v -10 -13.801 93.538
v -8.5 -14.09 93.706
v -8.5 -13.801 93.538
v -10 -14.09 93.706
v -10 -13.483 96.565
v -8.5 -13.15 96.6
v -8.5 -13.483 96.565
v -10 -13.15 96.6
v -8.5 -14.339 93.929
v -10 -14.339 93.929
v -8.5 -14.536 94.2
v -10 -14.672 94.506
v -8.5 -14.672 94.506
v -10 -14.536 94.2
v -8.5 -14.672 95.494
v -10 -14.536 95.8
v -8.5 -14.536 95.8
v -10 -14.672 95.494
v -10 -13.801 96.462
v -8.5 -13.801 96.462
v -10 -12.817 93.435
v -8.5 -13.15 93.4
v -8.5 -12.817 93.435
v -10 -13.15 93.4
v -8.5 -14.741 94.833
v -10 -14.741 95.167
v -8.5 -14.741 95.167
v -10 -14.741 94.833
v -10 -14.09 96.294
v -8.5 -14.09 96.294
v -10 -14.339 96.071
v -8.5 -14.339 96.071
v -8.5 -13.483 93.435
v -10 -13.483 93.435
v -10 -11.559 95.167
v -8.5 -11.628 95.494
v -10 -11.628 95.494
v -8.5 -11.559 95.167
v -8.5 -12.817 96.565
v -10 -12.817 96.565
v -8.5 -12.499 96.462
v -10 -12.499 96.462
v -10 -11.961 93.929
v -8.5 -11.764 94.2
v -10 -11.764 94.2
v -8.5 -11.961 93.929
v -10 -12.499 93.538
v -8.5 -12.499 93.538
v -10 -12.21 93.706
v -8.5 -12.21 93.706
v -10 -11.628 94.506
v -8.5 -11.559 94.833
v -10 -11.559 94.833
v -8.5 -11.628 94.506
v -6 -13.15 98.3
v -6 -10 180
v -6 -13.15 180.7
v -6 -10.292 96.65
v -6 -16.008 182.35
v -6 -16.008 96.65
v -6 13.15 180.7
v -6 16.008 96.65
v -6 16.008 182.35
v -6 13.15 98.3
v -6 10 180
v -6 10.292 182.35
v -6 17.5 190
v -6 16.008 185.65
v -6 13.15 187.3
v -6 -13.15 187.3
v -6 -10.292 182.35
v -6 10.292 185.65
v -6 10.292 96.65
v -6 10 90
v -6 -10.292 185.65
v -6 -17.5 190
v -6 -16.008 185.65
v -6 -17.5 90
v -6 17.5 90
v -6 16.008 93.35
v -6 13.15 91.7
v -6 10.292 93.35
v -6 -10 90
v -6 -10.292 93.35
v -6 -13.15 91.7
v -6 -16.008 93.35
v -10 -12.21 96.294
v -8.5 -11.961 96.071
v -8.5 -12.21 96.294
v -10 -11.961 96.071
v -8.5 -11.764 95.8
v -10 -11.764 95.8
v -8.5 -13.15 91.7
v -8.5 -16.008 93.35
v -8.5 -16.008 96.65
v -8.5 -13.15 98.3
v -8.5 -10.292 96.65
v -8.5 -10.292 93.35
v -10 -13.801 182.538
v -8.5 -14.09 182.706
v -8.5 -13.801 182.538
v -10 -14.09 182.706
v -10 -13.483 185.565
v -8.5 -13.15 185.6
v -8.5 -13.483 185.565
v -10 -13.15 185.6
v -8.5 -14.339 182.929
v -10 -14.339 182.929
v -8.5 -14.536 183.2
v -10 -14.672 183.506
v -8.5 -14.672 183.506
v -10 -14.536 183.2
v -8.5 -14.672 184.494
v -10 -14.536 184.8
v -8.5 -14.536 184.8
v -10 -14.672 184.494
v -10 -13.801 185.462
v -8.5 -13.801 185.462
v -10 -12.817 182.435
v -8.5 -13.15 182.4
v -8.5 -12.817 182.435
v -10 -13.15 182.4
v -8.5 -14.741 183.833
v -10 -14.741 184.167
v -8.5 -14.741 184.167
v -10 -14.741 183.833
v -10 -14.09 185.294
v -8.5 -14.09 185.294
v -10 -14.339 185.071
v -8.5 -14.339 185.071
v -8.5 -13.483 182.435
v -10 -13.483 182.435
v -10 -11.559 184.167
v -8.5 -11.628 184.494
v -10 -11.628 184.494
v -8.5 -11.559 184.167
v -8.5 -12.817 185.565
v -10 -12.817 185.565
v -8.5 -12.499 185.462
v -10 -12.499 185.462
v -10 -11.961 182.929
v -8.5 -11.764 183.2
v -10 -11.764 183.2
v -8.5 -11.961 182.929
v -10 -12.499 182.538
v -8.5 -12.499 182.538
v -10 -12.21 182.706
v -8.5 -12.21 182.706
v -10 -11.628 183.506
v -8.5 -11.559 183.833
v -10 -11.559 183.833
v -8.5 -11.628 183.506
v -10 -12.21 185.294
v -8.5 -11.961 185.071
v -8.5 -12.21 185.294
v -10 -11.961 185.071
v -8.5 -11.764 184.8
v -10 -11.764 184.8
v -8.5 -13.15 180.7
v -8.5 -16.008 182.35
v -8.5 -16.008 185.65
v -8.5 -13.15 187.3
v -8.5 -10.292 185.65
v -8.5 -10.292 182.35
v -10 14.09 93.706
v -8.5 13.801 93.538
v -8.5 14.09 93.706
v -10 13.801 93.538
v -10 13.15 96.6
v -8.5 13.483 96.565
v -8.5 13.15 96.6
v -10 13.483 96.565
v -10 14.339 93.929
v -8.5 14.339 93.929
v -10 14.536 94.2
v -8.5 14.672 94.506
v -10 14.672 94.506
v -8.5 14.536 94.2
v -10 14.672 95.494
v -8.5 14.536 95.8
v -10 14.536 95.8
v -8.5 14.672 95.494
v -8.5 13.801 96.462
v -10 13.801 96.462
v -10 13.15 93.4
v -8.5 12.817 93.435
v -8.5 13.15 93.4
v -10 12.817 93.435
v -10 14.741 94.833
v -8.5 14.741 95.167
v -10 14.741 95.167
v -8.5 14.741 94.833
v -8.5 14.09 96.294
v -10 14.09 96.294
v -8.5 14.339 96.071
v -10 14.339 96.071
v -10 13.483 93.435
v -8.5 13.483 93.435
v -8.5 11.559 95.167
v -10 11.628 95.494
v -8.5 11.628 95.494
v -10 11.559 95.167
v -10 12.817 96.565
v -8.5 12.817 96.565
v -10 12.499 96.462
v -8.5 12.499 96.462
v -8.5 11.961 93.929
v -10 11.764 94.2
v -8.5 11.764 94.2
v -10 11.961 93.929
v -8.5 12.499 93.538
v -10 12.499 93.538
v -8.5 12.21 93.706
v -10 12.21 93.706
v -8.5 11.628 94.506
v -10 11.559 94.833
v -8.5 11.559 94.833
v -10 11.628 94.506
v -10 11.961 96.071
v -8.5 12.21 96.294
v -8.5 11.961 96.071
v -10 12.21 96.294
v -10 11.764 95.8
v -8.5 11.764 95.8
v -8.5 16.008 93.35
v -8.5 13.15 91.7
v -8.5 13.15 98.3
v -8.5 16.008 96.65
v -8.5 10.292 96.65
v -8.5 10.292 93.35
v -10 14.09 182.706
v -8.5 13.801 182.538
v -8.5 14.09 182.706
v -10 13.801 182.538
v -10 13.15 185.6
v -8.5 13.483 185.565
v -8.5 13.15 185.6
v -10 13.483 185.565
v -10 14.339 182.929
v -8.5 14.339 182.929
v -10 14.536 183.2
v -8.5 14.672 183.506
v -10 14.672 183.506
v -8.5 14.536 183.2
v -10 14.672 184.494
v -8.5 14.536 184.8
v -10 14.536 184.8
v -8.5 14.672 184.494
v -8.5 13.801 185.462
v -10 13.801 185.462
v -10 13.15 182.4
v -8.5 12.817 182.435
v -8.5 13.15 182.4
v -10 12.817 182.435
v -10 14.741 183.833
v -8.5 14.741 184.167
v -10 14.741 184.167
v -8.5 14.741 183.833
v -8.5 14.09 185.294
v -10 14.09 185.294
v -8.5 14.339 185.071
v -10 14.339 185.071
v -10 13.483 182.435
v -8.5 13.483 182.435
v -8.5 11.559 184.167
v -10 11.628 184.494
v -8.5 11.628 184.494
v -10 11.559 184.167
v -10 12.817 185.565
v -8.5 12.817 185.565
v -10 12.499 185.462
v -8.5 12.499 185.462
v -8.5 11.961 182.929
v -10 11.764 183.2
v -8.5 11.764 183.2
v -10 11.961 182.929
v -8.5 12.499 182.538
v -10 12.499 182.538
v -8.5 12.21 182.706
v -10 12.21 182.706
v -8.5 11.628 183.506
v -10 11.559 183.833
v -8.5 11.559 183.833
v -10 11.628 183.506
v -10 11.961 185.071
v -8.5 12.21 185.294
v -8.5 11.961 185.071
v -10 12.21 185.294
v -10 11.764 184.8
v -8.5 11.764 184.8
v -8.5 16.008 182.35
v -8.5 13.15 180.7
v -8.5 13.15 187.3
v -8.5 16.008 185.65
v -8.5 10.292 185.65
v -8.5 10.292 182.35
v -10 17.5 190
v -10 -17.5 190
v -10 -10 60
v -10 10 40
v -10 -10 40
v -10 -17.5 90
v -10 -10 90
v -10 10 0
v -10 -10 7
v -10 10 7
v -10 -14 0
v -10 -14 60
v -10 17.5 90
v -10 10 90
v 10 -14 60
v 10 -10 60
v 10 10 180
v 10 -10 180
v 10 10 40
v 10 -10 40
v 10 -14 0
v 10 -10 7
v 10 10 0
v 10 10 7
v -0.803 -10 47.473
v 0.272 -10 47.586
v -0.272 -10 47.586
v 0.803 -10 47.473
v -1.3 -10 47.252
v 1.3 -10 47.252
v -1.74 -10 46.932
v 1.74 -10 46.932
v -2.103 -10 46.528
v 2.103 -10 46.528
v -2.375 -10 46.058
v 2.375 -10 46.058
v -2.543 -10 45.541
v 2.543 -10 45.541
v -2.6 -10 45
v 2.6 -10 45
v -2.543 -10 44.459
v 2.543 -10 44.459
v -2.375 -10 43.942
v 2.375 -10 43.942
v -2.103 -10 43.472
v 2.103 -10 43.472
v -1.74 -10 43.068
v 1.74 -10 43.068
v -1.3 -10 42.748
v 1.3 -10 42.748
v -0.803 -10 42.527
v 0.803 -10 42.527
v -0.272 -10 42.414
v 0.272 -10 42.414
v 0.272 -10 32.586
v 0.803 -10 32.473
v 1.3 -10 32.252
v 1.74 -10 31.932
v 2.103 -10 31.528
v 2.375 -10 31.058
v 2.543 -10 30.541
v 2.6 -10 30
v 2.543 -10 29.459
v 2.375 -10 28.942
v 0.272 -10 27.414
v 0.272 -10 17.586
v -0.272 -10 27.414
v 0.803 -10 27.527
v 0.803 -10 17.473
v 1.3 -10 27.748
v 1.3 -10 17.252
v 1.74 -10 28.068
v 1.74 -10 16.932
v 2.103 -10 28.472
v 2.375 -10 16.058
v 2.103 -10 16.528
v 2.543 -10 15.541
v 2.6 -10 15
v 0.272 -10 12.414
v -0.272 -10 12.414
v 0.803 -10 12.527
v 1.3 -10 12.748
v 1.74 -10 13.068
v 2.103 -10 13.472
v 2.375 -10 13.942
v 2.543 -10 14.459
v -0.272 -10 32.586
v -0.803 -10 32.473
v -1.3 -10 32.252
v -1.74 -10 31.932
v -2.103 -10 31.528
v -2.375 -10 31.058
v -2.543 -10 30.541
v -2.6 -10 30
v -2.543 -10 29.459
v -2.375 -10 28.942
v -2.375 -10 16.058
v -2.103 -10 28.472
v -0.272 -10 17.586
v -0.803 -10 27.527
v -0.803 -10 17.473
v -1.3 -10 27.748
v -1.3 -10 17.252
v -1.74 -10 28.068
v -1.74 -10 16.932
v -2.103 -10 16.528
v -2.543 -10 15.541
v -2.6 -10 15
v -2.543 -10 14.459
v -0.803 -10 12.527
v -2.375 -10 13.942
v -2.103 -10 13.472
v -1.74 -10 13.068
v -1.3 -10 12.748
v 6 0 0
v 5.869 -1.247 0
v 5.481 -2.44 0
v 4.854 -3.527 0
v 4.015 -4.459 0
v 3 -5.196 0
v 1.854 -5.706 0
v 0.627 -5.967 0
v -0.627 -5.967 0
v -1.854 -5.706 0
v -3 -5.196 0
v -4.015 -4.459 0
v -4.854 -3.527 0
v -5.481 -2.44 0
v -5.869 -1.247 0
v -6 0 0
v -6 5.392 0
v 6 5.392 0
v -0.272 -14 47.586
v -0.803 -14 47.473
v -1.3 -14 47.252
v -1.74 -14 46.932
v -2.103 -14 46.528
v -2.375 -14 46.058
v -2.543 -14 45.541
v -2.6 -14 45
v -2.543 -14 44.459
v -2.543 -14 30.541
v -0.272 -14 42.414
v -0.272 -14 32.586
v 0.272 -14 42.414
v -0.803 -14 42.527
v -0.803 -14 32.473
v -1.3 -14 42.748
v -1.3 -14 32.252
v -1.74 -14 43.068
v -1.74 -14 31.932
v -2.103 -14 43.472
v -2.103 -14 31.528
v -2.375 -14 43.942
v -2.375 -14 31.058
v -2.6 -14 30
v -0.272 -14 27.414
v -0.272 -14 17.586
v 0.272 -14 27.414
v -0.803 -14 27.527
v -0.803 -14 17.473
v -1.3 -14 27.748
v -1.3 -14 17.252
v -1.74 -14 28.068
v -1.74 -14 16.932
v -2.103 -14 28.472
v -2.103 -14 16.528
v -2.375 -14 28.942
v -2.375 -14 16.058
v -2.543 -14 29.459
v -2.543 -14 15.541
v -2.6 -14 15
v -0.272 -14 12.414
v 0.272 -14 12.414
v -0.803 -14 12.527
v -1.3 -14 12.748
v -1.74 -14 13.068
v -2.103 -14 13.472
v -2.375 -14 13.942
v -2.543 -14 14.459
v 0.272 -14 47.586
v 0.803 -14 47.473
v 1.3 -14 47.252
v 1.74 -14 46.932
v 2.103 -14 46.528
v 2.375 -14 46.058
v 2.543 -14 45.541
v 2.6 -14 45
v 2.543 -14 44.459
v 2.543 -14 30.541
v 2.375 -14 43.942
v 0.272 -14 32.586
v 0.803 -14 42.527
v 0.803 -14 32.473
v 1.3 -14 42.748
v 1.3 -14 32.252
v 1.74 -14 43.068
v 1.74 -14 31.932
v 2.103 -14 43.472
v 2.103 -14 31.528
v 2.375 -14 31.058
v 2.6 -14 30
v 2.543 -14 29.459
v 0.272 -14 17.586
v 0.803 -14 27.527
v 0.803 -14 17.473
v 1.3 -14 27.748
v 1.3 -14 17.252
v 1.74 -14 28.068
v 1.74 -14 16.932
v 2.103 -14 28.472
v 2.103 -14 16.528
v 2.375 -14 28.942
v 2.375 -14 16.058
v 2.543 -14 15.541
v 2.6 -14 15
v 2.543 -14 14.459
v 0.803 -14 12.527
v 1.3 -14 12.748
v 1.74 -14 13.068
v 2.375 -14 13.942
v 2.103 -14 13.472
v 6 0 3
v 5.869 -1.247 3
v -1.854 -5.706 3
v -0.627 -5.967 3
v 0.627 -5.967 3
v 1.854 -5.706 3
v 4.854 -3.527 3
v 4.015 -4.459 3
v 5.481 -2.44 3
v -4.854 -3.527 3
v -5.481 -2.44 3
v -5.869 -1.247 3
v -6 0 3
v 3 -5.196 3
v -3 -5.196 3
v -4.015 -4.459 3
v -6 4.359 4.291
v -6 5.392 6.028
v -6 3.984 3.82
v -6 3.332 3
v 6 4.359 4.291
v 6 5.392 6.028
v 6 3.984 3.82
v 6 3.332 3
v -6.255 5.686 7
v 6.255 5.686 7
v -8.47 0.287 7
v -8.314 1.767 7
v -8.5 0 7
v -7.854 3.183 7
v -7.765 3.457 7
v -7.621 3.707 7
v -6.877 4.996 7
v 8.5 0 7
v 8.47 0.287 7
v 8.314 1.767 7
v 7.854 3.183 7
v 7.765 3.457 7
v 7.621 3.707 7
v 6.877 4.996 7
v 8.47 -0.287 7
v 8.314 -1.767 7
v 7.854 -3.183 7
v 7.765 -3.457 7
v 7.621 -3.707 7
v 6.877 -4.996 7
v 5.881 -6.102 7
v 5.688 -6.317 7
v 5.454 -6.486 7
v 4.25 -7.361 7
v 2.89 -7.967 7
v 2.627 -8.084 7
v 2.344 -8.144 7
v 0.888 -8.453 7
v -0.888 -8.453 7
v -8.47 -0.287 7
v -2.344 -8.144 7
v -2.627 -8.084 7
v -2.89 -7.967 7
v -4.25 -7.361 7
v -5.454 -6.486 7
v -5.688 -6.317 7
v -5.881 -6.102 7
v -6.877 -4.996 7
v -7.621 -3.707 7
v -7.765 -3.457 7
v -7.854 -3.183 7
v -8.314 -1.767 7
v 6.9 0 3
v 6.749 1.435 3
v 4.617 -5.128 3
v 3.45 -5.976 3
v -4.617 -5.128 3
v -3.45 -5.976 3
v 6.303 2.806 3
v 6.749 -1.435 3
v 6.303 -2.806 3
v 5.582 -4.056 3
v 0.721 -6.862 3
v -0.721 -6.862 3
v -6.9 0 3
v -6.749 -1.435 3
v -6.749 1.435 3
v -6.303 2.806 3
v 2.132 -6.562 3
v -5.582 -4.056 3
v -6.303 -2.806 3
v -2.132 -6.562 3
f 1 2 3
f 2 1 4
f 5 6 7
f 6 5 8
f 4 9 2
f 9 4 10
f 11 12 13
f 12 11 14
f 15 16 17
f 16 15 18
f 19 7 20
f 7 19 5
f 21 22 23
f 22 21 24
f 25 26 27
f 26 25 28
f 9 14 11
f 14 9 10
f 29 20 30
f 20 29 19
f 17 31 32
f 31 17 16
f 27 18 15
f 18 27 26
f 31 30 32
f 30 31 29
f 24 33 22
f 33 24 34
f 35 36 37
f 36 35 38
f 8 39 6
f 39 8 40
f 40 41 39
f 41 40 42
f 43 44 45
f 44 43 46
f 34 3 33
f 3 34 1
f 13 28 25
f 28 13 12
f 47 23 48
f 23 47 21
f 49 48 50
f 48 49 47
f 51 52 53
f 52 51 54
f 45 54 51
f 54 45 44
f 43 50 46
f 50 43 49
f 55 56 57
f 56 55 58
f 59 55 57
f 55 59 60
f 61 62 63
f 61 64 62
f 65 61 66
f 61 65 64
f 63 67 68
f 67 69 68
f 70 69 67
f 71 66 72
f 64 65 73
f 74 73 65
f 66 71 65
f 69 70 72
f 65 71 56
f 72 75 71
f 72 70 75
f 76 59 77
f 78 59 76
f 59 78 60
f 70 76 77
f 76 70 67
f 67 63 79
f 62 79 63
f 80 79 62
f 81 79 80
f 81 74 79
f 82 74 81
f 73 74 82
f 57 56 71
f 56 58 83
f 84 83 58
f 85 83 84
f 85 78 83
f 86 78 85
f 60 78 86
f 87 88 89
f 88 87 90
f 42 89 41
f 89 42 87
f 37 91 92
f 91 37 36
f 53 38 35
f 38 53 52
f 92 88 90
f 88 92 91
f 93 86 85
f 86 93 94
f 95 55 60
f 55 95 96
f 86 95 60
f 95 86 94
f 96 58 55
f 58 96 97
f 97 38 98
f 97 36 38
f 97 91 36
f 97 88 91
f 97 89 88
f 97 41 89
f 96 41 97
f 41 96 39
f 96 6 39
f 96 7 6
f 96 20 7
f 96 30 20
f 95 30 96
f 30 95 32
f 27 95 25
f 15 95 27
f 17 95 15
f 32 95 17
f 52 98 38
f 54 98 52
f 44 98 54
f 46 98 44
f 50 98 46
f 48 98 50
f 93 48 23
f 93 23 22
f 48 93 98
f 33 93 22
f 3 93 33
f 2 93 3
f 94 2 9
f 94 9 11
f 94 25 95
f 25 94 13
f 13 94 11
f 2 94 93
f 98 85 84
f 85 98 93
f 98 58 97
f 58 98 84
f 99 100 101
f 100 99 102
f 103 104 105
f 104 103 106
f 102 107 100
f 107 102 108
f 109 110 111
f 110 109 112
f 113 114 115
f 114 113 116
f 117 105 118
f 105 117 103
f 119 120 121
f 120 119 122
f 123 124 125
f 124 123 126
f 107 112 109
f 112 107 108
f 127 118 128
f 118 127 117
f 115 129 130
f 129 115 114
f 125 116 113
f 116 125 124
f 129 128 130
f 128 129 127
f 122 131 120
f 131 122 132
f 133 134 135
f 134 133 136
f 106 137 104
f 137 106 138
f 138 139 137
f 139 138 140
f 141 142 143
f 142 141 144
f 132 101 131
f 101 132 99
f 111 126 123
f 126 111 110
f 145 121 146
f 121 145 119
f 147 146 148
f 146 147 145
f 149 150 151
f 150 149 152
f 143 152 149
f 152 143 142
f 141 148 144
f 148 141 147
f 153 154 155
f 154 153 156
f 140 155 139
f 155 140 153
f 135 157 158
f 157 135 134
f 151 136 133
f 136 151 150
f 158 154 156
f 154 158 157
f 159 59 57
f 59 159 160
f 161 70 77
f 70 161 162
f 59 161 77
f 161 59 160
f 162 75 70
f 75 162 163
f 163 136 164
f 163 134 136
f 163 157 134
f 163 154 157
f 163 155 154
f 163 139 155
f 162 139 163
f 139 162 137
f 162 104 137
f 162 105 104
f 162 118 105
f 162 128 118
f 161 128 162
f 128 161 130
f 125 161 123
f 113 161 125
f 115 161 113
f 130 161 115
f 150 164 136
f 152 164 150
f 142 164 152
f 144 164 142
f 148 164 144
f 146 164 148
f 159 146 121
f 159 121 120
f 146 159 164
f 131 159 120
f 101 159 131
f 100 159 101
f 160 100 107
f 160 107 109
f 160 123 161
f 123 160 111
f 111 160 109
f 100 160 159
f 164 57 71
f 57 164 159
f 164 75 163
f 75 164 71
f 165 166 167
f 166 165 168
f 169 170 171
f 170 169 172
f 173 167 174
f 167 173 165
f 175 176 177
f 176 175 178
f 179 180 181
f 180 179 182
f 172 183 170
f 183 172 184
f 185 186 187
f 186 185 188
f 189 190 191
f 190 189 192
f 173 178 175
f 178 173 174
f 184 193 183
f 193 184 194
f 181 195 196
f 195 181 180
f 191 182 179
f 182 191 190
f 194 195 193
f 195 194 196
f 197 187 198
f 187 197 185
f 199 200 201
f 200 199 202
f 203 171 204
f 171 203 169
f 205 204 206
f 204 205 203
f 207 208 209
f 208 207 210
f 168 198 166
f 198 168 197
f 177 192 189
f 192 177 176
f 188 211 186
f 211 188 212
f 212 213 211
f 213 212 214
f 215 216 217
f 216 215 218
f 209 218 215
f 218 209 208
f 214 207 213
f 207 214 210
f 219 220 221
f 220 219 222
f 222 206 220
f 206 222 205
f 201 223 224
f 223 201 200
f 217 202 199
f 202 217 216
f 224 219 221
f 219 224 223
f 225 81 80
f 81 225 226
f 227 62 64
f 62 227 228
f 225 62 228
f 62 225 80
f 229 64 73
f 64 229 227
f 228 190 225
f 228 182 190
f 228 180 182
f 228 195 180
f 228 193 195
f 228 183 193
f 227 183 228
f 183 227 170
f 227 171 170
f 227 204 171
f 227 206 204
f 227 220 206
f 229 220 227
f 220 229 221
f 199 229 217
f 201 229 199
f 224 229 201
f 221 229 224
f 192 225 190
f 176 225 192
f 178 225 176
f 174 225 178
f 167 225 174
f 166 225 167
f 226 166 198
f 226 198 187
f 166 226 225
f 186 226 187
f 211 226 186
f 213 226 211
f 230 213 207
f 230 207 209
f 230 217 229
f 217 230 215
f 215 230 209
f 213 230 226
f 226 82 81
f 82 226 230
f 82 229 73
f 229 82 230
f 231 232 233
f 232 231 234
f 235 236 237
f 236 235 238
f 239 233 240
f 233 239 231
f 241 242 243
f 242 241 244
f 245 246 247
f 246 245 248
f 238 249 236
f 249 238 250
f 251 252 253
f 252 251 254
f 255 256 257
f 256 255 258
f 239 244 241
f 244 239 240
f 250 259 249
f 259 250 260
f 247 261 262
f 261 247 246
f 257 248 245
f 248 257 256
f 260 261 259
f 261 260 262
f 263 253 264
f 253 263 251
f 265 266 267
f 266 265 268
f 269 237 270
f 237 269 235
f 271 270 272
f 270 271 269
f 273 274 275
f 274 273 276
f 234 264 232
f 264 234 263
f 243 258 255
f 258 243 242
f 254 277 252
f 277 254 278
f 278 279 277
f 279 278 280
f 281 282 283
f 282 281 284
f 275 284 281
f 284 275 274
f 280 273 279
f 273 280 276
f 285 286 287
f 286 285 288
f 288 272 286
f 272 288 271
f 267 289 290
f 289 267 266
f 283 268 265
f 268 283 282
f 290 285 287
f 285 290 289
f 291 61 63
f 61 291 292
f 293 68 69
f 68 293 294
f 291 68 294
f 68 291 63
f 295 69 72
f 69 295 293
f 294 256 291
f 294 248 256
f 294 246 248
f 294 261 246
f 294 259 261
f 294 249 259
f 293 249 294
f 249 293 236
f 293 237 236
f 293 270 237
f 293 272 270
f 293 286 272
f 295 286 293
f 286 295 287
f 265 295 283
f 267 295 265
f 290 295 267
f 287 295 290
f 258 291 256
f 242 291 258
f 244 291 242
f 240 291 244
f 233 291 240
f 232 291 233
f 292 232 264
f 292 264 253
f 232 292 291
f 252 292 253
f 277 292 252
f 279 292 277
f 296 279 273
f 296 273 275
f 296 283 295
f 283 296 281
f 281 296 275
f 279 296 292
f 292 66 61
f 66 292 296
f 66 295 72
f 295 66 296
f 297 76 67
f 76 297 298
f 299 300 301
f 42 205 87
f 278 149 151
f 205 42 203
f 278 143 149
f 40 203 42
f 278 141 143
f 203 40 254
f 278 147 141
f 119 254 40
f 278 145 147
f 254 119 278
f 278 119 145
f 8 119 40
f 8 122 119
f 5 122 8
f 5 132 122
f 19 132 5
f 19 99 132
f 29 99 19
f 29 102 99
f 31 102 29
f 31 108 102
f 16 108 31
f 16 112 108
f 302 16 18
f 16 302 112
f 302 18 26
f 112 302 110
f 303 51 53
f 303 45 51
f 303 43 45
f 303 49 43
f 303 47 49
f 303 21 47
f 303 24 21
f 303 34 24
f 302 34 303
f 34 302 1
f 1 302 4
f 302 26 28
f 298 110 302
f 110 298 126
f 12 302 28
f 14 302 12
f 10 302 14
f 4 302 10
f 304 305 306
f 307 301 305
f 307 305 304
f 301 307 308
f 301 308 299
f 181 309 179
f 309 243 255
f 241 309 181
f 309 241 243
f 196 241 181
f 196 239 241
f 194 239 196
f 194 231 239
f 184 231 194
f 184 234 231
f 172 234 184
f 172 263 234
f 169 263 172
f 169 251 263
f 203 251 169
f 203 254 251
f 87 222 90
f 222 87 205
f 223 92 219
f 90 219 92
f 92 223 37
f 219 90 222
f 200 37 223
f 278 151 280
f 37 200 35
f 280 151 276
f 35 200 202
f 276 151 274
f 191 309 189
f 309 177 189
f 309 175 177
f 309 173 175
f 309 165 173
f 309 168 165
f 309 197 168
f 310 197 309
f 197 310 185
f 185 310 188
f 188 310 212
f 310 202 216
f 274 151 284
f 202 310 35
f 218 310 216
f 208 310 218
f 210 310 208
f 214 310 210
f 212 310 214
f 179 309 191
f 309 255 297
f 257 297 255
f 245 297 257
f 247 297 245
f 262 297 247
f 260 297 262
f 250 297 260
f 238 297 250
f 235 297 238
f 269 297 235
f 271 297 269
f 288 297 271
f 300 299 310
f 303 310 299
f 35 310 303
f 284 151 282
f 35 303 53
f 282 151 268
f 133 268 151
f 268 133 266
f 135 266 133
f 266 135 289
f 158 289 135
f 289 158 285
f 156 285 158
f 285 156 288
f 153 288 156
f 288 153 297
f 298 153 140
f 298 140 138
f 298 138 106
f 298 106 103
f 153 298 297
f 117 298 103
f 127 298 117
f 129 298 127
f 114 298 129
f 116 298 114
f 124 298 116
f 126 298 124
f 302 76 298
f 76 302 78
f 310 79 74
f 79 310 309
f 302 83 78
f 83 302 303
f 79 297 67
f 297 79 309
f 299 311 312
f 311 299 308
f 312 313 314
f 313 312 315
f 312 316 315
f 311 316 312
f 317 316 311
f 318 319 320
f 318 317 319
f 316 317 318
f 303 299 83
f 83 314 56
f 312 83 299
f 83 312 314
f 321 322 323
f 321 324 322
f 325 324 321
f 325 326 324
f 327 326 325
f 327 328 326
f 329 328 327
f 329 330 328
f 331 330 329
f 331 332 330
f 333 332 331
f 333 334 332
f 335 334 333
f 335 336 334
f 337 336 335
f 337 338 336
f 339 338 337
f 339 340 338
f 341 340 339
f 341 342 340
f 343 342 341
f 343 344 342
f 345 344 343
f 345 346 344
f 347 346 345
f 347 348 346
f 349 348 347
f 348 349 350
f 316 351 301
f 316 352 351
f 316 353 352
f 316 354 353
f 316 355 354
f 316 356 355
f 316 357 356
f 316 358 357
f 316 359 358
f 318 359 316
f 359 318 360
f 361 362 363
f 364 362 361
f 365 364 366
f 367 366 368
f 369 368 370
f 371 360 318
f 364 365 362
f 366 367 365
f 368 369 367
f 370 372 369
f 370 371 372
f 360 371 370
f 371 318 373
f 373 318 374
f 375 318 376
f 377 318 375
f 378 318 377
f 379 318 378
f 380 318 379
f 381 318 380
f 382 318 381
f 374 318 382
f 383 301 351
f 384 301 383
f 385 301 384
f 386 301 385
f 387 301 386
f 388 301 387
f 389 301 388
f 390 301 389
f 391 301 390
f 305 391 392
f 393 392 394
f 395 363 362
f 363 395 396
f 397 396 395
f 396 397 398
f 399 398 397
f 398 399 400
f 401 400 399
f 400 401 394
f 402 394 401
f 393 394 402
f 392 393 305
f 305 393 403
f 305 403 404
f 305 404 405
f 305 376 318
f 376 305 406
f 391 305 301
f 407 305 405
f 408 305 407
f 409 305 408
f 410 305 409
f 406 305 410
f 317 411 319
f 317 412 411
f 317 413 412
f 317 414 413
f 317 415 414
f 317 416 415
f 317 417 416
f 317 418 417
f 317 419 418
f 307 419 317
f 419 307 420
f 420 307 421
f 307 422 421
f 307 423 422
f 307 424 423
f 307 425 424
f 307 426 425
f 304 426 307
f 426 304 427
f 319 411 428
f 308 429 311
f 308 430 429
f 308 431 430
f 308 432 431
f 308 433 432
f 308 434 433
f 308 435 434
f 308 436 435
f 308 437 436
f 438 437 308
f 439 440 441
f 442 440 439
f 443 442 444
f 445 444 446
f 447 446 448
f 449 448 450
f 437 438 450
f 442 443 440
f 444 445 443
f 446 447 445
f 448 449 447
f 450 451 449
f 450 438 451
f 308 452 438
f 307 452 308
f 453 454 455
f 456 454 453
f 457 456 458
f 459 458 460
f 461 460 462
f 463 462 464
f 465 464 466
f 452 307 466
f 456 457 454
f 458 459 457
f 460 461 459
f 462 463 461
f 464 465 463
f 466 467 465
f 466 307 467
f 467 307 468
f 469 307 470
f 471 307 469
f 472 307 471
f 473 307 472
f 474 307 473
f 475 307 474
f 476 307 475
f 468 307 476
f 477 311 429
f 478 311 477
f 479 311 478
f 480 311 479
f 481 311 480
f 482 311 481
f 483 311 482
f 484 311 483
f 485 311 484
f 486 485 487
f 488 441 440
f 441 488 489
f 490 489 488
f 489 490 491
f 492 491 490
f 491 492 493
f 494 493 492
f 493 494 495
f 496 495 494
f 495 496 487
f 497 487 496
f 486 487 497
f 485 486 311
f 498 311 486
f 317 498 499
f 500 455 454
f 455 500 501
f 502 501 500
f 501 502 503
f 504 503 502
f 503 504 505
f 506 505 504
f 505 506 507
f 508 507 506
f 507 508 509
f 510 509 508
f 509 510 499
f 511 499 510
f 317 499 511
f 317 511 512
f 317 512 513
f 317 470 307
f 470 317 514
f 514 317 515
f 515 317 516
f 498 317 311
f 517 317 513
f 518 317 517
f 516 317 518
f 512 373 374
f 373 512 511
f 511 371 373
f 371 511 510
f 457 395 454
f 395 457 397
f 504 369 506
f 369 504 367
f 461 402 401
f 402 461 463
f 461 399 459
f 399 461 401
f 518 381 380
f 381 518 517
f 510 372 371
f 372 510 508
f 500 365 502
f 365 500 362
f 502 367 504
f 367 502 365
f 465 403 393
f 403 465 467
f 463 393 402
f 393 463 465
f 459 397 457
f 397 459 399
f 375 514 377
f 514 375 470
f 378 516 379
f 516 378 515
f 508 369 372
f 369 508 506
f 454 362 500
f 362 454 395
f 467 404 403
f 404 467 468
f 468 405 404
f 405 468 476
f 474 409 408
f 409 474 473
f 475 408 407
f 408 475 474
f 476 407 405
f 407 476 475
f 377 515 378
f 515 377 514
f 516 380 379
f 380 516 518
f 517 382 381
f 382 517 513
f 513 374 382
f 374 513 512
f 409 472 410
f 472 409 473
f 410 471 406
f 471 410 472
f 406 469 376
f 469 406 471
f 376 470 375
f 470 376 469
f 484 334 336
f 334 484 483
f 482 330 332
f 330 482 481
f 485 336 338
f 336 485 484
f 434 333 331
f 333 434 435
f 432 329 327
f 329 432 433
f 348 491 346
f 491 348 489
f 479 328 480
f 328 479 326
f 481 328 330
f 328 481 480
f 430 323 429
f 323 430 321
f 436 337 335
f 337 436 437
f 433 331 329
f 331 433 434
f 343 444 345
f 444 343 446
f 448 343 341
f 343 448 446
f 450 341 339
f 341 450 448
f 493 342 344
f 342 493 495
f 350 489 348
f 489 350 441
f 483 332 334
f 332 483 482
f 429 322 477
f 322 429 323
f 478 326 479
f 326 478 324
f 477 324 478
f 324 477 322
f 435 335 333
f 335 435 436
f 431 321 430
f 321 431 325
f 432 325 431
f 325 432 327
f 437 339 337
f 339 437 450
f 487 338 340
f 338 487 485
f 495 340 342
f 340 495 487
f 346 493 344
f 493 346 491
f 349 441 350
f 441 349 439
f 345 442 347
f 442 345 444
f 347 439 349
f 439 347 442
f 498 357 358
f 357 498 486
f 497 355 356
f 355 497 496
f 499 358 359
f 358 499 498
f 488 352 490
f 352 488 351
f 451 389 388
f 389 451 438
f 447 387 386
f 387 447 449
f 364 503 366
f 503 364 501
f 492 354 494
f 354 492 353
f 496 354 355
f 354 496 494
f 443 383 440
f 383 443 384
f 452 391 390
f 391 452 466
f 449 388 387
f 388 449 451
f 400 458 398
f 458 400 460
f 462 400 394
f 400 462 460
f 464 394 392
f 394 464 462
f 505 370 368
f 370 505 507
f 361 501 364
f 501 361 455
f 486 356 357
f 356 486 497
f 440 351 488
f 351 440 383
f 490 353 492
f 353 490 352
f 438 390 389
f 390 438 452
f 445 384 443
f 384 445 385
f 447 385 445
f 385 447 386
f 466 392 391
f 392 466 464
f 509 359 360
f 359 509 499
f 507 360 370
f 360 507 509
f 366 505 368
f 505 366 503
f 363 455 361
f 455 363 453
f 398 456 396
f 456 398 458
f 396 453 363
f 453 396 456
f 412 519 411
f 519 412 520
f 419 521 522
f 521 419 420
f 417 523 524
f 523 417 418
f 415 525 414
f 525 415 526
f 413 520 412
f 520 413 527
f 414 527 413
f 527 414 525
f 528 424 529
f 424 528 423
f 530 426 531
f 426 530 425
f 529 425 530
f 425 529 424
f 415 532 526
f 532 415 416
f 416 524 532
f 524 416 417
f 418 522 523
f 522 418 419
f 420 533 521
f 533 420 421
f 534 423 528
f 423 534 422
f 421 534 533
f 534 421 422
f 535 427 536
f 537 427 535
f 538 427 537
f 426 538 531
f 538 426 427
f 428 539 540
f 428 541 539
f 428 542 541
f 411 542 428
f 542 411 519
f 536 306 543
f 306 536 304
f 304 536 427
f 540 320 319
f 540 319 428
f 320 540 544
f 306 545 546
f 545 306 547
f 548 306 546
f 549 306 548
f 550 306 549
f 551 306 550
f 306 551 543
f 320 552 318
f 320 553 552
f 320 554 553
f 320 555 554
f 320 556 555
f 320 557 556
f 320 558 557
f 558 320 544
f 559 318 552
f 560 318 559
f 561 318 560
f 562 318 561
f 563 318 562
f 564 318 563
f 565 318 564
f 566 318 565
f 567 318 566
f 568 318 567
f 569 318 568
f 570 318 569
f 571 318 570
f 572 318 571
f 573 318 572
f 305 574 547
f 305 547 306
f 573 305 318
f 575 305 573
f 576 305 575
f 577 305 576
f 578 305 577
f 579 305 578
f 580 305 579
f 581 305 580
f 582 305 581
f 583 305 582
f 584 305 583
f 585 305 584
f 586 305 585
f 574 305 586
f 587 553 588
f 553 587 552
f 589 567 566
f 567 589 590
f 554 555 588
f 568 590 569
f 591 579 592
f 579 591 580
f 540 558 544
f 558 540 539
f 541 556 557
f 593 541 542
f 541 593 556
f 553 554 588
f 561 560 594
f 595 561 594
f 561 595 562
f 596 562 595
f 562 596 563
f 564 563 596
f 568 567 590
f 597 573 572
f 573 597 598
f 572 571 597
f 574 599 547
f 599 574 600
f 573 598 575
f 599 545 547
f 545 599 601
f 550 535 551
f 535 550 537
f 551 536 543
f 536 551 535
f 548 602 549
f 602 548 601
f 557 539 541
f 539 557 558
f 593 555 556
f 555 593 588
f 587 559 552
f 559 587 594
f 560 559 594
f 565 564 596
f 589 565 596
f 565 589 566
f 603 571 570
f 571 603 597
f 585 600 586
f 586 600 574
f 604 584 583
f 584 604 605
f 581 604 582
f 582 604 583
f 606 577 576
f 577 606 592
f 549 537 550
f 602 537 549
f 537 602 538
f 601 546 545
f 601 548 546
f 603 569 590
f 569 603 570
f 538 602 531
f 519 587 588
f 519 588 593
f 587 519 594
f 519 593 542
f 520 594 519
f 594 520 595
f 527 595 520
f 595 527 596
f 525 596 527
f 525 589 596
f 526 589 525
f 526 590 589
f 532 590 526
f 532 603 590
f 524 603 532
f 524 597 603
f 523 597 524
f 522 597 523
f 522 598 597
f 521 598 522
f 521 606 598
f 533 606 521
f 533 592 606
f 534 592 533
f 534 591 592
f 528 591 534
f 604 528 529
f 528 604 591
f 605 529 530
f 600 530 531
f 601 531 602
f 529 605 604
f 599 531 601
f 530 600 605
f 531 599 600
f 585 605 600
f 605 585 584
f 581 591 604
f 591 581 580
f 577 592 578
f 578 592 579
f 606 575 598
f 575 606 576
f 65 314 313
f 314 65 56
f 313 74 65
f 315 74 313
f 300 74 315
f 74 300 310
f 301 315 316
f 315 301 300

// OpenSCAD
// file: ot_grabber_big.scad
$fn=30;
tube_small_width = 12.0;
tube_big_width = 13.8;
holder_width=20;
holder_extra=14;
holder_length=24;
tolerance=2;
use <MCAD/nuts_and_bolts.scad>;


module one_neg_bit(){
    cylinder(r=tube_small_width/2,h=5);

translate([-tube_small_width/2,0,0])
cube([tube_small_width,20,25]);


hull(){
translate([-holder_width/2,holder_length-holder_extra,0])
    
cube([holder_width,3,25]);
 cylinder(r=1,h=50);   };
 };
 
 
 module one_neg_bit_for_calibration(){
     calibration_tolerance=0.5;
    cylinder(r=tube_small_width/2-calibration_tolerance,h=5);

translate([-tube_small_width/2+calibration_tolerance,0,0])
cube([tube_small_width-calibration_tolerance*2,20,5]);


hull(){
    
translate([-holder_width/2,holder_length-holder_extra+calibration_tolerance*2,0])
    
cube([holder_width,3,5]);
 cylinder(r=1,h=5);   };
 translate([0,5,-1.5])
 cube([23,20,3],center=true);
 };
 
 
 
 module grabber(){
difference(){
    translate([-20/2,-holder_extra,0])
cube([20,4,60]);
    translate([0,0,15])
    rotate([90,0,0])
#cylinder(r=2.6,h=50);
      translate([0,0,45])
    rotate([90,0,0])
#cylinder(r=2.6,h=50);
    
      translate([0,0,30])
    rotate([90,0,0])
#cylinder(r=2.6,h=50);
}

difference(){
    translate([-holder_width/2,-holder_extra,0])
    cube([holder_width,holder_length,7]);

    one_neg_bit();
//translate([-tube_big_width/2,0,3])
//cube([tube_big_width,20,3]);


translate([0,0,3])
cylinder(r1=tube_big_width/2,r2=tube_big_width/2+tolerance,h=5);


}
};


module smaller(){
    
    one_neg_bit();
}


big_dist_pipette = 89;
small_dist_pipette = 26.3;
size =35;

module copy_mirror(vec=[0,1,0])
{
    children();
    mirror(vec) children();
}


module neg_bit(){
    cylinder(r=1.6,h=30);
    nutHole(3,tolerance = 0.1);
}

module neg_bit2(){
    cylinder(r=2.6,h=30);
    translate([0,0,2])
    cylinder(r=5,h=30);
}


grabber();

module pipette_negative(){
copy_mirror(){
    
    translate([0,small_dist_pipette/2,0])
      rotate([0,90,0]) neg_bit();
    
    
       translate([0,small_dist_pipette/2,big_dist_pipette])
      rotate([0,90,0]) neg_bit();
    
    
    translate([0,0,10])  rotate([0,90,0]) neg_bit2();
    
     translate([0,0,70])  rotate([0,90,0]) neg_bit2();
    
}
    
    
}


module mount(){
difference(){
translate([0,-size/2,0])
cube([4,size,100]);
    
    translate([0,0,5])
#pipette_negative();
    
}

};
// main file
use <ot_grabber_big.scad>;
offset=90;
height_to_start=40;
overlap=90;
translate([-6,0,offset])
rotate([0,0,180])mount();
translate([-10,-10, height_to_start])
cube([20,20,offset+overlap-height_to_start]);
grabber();
